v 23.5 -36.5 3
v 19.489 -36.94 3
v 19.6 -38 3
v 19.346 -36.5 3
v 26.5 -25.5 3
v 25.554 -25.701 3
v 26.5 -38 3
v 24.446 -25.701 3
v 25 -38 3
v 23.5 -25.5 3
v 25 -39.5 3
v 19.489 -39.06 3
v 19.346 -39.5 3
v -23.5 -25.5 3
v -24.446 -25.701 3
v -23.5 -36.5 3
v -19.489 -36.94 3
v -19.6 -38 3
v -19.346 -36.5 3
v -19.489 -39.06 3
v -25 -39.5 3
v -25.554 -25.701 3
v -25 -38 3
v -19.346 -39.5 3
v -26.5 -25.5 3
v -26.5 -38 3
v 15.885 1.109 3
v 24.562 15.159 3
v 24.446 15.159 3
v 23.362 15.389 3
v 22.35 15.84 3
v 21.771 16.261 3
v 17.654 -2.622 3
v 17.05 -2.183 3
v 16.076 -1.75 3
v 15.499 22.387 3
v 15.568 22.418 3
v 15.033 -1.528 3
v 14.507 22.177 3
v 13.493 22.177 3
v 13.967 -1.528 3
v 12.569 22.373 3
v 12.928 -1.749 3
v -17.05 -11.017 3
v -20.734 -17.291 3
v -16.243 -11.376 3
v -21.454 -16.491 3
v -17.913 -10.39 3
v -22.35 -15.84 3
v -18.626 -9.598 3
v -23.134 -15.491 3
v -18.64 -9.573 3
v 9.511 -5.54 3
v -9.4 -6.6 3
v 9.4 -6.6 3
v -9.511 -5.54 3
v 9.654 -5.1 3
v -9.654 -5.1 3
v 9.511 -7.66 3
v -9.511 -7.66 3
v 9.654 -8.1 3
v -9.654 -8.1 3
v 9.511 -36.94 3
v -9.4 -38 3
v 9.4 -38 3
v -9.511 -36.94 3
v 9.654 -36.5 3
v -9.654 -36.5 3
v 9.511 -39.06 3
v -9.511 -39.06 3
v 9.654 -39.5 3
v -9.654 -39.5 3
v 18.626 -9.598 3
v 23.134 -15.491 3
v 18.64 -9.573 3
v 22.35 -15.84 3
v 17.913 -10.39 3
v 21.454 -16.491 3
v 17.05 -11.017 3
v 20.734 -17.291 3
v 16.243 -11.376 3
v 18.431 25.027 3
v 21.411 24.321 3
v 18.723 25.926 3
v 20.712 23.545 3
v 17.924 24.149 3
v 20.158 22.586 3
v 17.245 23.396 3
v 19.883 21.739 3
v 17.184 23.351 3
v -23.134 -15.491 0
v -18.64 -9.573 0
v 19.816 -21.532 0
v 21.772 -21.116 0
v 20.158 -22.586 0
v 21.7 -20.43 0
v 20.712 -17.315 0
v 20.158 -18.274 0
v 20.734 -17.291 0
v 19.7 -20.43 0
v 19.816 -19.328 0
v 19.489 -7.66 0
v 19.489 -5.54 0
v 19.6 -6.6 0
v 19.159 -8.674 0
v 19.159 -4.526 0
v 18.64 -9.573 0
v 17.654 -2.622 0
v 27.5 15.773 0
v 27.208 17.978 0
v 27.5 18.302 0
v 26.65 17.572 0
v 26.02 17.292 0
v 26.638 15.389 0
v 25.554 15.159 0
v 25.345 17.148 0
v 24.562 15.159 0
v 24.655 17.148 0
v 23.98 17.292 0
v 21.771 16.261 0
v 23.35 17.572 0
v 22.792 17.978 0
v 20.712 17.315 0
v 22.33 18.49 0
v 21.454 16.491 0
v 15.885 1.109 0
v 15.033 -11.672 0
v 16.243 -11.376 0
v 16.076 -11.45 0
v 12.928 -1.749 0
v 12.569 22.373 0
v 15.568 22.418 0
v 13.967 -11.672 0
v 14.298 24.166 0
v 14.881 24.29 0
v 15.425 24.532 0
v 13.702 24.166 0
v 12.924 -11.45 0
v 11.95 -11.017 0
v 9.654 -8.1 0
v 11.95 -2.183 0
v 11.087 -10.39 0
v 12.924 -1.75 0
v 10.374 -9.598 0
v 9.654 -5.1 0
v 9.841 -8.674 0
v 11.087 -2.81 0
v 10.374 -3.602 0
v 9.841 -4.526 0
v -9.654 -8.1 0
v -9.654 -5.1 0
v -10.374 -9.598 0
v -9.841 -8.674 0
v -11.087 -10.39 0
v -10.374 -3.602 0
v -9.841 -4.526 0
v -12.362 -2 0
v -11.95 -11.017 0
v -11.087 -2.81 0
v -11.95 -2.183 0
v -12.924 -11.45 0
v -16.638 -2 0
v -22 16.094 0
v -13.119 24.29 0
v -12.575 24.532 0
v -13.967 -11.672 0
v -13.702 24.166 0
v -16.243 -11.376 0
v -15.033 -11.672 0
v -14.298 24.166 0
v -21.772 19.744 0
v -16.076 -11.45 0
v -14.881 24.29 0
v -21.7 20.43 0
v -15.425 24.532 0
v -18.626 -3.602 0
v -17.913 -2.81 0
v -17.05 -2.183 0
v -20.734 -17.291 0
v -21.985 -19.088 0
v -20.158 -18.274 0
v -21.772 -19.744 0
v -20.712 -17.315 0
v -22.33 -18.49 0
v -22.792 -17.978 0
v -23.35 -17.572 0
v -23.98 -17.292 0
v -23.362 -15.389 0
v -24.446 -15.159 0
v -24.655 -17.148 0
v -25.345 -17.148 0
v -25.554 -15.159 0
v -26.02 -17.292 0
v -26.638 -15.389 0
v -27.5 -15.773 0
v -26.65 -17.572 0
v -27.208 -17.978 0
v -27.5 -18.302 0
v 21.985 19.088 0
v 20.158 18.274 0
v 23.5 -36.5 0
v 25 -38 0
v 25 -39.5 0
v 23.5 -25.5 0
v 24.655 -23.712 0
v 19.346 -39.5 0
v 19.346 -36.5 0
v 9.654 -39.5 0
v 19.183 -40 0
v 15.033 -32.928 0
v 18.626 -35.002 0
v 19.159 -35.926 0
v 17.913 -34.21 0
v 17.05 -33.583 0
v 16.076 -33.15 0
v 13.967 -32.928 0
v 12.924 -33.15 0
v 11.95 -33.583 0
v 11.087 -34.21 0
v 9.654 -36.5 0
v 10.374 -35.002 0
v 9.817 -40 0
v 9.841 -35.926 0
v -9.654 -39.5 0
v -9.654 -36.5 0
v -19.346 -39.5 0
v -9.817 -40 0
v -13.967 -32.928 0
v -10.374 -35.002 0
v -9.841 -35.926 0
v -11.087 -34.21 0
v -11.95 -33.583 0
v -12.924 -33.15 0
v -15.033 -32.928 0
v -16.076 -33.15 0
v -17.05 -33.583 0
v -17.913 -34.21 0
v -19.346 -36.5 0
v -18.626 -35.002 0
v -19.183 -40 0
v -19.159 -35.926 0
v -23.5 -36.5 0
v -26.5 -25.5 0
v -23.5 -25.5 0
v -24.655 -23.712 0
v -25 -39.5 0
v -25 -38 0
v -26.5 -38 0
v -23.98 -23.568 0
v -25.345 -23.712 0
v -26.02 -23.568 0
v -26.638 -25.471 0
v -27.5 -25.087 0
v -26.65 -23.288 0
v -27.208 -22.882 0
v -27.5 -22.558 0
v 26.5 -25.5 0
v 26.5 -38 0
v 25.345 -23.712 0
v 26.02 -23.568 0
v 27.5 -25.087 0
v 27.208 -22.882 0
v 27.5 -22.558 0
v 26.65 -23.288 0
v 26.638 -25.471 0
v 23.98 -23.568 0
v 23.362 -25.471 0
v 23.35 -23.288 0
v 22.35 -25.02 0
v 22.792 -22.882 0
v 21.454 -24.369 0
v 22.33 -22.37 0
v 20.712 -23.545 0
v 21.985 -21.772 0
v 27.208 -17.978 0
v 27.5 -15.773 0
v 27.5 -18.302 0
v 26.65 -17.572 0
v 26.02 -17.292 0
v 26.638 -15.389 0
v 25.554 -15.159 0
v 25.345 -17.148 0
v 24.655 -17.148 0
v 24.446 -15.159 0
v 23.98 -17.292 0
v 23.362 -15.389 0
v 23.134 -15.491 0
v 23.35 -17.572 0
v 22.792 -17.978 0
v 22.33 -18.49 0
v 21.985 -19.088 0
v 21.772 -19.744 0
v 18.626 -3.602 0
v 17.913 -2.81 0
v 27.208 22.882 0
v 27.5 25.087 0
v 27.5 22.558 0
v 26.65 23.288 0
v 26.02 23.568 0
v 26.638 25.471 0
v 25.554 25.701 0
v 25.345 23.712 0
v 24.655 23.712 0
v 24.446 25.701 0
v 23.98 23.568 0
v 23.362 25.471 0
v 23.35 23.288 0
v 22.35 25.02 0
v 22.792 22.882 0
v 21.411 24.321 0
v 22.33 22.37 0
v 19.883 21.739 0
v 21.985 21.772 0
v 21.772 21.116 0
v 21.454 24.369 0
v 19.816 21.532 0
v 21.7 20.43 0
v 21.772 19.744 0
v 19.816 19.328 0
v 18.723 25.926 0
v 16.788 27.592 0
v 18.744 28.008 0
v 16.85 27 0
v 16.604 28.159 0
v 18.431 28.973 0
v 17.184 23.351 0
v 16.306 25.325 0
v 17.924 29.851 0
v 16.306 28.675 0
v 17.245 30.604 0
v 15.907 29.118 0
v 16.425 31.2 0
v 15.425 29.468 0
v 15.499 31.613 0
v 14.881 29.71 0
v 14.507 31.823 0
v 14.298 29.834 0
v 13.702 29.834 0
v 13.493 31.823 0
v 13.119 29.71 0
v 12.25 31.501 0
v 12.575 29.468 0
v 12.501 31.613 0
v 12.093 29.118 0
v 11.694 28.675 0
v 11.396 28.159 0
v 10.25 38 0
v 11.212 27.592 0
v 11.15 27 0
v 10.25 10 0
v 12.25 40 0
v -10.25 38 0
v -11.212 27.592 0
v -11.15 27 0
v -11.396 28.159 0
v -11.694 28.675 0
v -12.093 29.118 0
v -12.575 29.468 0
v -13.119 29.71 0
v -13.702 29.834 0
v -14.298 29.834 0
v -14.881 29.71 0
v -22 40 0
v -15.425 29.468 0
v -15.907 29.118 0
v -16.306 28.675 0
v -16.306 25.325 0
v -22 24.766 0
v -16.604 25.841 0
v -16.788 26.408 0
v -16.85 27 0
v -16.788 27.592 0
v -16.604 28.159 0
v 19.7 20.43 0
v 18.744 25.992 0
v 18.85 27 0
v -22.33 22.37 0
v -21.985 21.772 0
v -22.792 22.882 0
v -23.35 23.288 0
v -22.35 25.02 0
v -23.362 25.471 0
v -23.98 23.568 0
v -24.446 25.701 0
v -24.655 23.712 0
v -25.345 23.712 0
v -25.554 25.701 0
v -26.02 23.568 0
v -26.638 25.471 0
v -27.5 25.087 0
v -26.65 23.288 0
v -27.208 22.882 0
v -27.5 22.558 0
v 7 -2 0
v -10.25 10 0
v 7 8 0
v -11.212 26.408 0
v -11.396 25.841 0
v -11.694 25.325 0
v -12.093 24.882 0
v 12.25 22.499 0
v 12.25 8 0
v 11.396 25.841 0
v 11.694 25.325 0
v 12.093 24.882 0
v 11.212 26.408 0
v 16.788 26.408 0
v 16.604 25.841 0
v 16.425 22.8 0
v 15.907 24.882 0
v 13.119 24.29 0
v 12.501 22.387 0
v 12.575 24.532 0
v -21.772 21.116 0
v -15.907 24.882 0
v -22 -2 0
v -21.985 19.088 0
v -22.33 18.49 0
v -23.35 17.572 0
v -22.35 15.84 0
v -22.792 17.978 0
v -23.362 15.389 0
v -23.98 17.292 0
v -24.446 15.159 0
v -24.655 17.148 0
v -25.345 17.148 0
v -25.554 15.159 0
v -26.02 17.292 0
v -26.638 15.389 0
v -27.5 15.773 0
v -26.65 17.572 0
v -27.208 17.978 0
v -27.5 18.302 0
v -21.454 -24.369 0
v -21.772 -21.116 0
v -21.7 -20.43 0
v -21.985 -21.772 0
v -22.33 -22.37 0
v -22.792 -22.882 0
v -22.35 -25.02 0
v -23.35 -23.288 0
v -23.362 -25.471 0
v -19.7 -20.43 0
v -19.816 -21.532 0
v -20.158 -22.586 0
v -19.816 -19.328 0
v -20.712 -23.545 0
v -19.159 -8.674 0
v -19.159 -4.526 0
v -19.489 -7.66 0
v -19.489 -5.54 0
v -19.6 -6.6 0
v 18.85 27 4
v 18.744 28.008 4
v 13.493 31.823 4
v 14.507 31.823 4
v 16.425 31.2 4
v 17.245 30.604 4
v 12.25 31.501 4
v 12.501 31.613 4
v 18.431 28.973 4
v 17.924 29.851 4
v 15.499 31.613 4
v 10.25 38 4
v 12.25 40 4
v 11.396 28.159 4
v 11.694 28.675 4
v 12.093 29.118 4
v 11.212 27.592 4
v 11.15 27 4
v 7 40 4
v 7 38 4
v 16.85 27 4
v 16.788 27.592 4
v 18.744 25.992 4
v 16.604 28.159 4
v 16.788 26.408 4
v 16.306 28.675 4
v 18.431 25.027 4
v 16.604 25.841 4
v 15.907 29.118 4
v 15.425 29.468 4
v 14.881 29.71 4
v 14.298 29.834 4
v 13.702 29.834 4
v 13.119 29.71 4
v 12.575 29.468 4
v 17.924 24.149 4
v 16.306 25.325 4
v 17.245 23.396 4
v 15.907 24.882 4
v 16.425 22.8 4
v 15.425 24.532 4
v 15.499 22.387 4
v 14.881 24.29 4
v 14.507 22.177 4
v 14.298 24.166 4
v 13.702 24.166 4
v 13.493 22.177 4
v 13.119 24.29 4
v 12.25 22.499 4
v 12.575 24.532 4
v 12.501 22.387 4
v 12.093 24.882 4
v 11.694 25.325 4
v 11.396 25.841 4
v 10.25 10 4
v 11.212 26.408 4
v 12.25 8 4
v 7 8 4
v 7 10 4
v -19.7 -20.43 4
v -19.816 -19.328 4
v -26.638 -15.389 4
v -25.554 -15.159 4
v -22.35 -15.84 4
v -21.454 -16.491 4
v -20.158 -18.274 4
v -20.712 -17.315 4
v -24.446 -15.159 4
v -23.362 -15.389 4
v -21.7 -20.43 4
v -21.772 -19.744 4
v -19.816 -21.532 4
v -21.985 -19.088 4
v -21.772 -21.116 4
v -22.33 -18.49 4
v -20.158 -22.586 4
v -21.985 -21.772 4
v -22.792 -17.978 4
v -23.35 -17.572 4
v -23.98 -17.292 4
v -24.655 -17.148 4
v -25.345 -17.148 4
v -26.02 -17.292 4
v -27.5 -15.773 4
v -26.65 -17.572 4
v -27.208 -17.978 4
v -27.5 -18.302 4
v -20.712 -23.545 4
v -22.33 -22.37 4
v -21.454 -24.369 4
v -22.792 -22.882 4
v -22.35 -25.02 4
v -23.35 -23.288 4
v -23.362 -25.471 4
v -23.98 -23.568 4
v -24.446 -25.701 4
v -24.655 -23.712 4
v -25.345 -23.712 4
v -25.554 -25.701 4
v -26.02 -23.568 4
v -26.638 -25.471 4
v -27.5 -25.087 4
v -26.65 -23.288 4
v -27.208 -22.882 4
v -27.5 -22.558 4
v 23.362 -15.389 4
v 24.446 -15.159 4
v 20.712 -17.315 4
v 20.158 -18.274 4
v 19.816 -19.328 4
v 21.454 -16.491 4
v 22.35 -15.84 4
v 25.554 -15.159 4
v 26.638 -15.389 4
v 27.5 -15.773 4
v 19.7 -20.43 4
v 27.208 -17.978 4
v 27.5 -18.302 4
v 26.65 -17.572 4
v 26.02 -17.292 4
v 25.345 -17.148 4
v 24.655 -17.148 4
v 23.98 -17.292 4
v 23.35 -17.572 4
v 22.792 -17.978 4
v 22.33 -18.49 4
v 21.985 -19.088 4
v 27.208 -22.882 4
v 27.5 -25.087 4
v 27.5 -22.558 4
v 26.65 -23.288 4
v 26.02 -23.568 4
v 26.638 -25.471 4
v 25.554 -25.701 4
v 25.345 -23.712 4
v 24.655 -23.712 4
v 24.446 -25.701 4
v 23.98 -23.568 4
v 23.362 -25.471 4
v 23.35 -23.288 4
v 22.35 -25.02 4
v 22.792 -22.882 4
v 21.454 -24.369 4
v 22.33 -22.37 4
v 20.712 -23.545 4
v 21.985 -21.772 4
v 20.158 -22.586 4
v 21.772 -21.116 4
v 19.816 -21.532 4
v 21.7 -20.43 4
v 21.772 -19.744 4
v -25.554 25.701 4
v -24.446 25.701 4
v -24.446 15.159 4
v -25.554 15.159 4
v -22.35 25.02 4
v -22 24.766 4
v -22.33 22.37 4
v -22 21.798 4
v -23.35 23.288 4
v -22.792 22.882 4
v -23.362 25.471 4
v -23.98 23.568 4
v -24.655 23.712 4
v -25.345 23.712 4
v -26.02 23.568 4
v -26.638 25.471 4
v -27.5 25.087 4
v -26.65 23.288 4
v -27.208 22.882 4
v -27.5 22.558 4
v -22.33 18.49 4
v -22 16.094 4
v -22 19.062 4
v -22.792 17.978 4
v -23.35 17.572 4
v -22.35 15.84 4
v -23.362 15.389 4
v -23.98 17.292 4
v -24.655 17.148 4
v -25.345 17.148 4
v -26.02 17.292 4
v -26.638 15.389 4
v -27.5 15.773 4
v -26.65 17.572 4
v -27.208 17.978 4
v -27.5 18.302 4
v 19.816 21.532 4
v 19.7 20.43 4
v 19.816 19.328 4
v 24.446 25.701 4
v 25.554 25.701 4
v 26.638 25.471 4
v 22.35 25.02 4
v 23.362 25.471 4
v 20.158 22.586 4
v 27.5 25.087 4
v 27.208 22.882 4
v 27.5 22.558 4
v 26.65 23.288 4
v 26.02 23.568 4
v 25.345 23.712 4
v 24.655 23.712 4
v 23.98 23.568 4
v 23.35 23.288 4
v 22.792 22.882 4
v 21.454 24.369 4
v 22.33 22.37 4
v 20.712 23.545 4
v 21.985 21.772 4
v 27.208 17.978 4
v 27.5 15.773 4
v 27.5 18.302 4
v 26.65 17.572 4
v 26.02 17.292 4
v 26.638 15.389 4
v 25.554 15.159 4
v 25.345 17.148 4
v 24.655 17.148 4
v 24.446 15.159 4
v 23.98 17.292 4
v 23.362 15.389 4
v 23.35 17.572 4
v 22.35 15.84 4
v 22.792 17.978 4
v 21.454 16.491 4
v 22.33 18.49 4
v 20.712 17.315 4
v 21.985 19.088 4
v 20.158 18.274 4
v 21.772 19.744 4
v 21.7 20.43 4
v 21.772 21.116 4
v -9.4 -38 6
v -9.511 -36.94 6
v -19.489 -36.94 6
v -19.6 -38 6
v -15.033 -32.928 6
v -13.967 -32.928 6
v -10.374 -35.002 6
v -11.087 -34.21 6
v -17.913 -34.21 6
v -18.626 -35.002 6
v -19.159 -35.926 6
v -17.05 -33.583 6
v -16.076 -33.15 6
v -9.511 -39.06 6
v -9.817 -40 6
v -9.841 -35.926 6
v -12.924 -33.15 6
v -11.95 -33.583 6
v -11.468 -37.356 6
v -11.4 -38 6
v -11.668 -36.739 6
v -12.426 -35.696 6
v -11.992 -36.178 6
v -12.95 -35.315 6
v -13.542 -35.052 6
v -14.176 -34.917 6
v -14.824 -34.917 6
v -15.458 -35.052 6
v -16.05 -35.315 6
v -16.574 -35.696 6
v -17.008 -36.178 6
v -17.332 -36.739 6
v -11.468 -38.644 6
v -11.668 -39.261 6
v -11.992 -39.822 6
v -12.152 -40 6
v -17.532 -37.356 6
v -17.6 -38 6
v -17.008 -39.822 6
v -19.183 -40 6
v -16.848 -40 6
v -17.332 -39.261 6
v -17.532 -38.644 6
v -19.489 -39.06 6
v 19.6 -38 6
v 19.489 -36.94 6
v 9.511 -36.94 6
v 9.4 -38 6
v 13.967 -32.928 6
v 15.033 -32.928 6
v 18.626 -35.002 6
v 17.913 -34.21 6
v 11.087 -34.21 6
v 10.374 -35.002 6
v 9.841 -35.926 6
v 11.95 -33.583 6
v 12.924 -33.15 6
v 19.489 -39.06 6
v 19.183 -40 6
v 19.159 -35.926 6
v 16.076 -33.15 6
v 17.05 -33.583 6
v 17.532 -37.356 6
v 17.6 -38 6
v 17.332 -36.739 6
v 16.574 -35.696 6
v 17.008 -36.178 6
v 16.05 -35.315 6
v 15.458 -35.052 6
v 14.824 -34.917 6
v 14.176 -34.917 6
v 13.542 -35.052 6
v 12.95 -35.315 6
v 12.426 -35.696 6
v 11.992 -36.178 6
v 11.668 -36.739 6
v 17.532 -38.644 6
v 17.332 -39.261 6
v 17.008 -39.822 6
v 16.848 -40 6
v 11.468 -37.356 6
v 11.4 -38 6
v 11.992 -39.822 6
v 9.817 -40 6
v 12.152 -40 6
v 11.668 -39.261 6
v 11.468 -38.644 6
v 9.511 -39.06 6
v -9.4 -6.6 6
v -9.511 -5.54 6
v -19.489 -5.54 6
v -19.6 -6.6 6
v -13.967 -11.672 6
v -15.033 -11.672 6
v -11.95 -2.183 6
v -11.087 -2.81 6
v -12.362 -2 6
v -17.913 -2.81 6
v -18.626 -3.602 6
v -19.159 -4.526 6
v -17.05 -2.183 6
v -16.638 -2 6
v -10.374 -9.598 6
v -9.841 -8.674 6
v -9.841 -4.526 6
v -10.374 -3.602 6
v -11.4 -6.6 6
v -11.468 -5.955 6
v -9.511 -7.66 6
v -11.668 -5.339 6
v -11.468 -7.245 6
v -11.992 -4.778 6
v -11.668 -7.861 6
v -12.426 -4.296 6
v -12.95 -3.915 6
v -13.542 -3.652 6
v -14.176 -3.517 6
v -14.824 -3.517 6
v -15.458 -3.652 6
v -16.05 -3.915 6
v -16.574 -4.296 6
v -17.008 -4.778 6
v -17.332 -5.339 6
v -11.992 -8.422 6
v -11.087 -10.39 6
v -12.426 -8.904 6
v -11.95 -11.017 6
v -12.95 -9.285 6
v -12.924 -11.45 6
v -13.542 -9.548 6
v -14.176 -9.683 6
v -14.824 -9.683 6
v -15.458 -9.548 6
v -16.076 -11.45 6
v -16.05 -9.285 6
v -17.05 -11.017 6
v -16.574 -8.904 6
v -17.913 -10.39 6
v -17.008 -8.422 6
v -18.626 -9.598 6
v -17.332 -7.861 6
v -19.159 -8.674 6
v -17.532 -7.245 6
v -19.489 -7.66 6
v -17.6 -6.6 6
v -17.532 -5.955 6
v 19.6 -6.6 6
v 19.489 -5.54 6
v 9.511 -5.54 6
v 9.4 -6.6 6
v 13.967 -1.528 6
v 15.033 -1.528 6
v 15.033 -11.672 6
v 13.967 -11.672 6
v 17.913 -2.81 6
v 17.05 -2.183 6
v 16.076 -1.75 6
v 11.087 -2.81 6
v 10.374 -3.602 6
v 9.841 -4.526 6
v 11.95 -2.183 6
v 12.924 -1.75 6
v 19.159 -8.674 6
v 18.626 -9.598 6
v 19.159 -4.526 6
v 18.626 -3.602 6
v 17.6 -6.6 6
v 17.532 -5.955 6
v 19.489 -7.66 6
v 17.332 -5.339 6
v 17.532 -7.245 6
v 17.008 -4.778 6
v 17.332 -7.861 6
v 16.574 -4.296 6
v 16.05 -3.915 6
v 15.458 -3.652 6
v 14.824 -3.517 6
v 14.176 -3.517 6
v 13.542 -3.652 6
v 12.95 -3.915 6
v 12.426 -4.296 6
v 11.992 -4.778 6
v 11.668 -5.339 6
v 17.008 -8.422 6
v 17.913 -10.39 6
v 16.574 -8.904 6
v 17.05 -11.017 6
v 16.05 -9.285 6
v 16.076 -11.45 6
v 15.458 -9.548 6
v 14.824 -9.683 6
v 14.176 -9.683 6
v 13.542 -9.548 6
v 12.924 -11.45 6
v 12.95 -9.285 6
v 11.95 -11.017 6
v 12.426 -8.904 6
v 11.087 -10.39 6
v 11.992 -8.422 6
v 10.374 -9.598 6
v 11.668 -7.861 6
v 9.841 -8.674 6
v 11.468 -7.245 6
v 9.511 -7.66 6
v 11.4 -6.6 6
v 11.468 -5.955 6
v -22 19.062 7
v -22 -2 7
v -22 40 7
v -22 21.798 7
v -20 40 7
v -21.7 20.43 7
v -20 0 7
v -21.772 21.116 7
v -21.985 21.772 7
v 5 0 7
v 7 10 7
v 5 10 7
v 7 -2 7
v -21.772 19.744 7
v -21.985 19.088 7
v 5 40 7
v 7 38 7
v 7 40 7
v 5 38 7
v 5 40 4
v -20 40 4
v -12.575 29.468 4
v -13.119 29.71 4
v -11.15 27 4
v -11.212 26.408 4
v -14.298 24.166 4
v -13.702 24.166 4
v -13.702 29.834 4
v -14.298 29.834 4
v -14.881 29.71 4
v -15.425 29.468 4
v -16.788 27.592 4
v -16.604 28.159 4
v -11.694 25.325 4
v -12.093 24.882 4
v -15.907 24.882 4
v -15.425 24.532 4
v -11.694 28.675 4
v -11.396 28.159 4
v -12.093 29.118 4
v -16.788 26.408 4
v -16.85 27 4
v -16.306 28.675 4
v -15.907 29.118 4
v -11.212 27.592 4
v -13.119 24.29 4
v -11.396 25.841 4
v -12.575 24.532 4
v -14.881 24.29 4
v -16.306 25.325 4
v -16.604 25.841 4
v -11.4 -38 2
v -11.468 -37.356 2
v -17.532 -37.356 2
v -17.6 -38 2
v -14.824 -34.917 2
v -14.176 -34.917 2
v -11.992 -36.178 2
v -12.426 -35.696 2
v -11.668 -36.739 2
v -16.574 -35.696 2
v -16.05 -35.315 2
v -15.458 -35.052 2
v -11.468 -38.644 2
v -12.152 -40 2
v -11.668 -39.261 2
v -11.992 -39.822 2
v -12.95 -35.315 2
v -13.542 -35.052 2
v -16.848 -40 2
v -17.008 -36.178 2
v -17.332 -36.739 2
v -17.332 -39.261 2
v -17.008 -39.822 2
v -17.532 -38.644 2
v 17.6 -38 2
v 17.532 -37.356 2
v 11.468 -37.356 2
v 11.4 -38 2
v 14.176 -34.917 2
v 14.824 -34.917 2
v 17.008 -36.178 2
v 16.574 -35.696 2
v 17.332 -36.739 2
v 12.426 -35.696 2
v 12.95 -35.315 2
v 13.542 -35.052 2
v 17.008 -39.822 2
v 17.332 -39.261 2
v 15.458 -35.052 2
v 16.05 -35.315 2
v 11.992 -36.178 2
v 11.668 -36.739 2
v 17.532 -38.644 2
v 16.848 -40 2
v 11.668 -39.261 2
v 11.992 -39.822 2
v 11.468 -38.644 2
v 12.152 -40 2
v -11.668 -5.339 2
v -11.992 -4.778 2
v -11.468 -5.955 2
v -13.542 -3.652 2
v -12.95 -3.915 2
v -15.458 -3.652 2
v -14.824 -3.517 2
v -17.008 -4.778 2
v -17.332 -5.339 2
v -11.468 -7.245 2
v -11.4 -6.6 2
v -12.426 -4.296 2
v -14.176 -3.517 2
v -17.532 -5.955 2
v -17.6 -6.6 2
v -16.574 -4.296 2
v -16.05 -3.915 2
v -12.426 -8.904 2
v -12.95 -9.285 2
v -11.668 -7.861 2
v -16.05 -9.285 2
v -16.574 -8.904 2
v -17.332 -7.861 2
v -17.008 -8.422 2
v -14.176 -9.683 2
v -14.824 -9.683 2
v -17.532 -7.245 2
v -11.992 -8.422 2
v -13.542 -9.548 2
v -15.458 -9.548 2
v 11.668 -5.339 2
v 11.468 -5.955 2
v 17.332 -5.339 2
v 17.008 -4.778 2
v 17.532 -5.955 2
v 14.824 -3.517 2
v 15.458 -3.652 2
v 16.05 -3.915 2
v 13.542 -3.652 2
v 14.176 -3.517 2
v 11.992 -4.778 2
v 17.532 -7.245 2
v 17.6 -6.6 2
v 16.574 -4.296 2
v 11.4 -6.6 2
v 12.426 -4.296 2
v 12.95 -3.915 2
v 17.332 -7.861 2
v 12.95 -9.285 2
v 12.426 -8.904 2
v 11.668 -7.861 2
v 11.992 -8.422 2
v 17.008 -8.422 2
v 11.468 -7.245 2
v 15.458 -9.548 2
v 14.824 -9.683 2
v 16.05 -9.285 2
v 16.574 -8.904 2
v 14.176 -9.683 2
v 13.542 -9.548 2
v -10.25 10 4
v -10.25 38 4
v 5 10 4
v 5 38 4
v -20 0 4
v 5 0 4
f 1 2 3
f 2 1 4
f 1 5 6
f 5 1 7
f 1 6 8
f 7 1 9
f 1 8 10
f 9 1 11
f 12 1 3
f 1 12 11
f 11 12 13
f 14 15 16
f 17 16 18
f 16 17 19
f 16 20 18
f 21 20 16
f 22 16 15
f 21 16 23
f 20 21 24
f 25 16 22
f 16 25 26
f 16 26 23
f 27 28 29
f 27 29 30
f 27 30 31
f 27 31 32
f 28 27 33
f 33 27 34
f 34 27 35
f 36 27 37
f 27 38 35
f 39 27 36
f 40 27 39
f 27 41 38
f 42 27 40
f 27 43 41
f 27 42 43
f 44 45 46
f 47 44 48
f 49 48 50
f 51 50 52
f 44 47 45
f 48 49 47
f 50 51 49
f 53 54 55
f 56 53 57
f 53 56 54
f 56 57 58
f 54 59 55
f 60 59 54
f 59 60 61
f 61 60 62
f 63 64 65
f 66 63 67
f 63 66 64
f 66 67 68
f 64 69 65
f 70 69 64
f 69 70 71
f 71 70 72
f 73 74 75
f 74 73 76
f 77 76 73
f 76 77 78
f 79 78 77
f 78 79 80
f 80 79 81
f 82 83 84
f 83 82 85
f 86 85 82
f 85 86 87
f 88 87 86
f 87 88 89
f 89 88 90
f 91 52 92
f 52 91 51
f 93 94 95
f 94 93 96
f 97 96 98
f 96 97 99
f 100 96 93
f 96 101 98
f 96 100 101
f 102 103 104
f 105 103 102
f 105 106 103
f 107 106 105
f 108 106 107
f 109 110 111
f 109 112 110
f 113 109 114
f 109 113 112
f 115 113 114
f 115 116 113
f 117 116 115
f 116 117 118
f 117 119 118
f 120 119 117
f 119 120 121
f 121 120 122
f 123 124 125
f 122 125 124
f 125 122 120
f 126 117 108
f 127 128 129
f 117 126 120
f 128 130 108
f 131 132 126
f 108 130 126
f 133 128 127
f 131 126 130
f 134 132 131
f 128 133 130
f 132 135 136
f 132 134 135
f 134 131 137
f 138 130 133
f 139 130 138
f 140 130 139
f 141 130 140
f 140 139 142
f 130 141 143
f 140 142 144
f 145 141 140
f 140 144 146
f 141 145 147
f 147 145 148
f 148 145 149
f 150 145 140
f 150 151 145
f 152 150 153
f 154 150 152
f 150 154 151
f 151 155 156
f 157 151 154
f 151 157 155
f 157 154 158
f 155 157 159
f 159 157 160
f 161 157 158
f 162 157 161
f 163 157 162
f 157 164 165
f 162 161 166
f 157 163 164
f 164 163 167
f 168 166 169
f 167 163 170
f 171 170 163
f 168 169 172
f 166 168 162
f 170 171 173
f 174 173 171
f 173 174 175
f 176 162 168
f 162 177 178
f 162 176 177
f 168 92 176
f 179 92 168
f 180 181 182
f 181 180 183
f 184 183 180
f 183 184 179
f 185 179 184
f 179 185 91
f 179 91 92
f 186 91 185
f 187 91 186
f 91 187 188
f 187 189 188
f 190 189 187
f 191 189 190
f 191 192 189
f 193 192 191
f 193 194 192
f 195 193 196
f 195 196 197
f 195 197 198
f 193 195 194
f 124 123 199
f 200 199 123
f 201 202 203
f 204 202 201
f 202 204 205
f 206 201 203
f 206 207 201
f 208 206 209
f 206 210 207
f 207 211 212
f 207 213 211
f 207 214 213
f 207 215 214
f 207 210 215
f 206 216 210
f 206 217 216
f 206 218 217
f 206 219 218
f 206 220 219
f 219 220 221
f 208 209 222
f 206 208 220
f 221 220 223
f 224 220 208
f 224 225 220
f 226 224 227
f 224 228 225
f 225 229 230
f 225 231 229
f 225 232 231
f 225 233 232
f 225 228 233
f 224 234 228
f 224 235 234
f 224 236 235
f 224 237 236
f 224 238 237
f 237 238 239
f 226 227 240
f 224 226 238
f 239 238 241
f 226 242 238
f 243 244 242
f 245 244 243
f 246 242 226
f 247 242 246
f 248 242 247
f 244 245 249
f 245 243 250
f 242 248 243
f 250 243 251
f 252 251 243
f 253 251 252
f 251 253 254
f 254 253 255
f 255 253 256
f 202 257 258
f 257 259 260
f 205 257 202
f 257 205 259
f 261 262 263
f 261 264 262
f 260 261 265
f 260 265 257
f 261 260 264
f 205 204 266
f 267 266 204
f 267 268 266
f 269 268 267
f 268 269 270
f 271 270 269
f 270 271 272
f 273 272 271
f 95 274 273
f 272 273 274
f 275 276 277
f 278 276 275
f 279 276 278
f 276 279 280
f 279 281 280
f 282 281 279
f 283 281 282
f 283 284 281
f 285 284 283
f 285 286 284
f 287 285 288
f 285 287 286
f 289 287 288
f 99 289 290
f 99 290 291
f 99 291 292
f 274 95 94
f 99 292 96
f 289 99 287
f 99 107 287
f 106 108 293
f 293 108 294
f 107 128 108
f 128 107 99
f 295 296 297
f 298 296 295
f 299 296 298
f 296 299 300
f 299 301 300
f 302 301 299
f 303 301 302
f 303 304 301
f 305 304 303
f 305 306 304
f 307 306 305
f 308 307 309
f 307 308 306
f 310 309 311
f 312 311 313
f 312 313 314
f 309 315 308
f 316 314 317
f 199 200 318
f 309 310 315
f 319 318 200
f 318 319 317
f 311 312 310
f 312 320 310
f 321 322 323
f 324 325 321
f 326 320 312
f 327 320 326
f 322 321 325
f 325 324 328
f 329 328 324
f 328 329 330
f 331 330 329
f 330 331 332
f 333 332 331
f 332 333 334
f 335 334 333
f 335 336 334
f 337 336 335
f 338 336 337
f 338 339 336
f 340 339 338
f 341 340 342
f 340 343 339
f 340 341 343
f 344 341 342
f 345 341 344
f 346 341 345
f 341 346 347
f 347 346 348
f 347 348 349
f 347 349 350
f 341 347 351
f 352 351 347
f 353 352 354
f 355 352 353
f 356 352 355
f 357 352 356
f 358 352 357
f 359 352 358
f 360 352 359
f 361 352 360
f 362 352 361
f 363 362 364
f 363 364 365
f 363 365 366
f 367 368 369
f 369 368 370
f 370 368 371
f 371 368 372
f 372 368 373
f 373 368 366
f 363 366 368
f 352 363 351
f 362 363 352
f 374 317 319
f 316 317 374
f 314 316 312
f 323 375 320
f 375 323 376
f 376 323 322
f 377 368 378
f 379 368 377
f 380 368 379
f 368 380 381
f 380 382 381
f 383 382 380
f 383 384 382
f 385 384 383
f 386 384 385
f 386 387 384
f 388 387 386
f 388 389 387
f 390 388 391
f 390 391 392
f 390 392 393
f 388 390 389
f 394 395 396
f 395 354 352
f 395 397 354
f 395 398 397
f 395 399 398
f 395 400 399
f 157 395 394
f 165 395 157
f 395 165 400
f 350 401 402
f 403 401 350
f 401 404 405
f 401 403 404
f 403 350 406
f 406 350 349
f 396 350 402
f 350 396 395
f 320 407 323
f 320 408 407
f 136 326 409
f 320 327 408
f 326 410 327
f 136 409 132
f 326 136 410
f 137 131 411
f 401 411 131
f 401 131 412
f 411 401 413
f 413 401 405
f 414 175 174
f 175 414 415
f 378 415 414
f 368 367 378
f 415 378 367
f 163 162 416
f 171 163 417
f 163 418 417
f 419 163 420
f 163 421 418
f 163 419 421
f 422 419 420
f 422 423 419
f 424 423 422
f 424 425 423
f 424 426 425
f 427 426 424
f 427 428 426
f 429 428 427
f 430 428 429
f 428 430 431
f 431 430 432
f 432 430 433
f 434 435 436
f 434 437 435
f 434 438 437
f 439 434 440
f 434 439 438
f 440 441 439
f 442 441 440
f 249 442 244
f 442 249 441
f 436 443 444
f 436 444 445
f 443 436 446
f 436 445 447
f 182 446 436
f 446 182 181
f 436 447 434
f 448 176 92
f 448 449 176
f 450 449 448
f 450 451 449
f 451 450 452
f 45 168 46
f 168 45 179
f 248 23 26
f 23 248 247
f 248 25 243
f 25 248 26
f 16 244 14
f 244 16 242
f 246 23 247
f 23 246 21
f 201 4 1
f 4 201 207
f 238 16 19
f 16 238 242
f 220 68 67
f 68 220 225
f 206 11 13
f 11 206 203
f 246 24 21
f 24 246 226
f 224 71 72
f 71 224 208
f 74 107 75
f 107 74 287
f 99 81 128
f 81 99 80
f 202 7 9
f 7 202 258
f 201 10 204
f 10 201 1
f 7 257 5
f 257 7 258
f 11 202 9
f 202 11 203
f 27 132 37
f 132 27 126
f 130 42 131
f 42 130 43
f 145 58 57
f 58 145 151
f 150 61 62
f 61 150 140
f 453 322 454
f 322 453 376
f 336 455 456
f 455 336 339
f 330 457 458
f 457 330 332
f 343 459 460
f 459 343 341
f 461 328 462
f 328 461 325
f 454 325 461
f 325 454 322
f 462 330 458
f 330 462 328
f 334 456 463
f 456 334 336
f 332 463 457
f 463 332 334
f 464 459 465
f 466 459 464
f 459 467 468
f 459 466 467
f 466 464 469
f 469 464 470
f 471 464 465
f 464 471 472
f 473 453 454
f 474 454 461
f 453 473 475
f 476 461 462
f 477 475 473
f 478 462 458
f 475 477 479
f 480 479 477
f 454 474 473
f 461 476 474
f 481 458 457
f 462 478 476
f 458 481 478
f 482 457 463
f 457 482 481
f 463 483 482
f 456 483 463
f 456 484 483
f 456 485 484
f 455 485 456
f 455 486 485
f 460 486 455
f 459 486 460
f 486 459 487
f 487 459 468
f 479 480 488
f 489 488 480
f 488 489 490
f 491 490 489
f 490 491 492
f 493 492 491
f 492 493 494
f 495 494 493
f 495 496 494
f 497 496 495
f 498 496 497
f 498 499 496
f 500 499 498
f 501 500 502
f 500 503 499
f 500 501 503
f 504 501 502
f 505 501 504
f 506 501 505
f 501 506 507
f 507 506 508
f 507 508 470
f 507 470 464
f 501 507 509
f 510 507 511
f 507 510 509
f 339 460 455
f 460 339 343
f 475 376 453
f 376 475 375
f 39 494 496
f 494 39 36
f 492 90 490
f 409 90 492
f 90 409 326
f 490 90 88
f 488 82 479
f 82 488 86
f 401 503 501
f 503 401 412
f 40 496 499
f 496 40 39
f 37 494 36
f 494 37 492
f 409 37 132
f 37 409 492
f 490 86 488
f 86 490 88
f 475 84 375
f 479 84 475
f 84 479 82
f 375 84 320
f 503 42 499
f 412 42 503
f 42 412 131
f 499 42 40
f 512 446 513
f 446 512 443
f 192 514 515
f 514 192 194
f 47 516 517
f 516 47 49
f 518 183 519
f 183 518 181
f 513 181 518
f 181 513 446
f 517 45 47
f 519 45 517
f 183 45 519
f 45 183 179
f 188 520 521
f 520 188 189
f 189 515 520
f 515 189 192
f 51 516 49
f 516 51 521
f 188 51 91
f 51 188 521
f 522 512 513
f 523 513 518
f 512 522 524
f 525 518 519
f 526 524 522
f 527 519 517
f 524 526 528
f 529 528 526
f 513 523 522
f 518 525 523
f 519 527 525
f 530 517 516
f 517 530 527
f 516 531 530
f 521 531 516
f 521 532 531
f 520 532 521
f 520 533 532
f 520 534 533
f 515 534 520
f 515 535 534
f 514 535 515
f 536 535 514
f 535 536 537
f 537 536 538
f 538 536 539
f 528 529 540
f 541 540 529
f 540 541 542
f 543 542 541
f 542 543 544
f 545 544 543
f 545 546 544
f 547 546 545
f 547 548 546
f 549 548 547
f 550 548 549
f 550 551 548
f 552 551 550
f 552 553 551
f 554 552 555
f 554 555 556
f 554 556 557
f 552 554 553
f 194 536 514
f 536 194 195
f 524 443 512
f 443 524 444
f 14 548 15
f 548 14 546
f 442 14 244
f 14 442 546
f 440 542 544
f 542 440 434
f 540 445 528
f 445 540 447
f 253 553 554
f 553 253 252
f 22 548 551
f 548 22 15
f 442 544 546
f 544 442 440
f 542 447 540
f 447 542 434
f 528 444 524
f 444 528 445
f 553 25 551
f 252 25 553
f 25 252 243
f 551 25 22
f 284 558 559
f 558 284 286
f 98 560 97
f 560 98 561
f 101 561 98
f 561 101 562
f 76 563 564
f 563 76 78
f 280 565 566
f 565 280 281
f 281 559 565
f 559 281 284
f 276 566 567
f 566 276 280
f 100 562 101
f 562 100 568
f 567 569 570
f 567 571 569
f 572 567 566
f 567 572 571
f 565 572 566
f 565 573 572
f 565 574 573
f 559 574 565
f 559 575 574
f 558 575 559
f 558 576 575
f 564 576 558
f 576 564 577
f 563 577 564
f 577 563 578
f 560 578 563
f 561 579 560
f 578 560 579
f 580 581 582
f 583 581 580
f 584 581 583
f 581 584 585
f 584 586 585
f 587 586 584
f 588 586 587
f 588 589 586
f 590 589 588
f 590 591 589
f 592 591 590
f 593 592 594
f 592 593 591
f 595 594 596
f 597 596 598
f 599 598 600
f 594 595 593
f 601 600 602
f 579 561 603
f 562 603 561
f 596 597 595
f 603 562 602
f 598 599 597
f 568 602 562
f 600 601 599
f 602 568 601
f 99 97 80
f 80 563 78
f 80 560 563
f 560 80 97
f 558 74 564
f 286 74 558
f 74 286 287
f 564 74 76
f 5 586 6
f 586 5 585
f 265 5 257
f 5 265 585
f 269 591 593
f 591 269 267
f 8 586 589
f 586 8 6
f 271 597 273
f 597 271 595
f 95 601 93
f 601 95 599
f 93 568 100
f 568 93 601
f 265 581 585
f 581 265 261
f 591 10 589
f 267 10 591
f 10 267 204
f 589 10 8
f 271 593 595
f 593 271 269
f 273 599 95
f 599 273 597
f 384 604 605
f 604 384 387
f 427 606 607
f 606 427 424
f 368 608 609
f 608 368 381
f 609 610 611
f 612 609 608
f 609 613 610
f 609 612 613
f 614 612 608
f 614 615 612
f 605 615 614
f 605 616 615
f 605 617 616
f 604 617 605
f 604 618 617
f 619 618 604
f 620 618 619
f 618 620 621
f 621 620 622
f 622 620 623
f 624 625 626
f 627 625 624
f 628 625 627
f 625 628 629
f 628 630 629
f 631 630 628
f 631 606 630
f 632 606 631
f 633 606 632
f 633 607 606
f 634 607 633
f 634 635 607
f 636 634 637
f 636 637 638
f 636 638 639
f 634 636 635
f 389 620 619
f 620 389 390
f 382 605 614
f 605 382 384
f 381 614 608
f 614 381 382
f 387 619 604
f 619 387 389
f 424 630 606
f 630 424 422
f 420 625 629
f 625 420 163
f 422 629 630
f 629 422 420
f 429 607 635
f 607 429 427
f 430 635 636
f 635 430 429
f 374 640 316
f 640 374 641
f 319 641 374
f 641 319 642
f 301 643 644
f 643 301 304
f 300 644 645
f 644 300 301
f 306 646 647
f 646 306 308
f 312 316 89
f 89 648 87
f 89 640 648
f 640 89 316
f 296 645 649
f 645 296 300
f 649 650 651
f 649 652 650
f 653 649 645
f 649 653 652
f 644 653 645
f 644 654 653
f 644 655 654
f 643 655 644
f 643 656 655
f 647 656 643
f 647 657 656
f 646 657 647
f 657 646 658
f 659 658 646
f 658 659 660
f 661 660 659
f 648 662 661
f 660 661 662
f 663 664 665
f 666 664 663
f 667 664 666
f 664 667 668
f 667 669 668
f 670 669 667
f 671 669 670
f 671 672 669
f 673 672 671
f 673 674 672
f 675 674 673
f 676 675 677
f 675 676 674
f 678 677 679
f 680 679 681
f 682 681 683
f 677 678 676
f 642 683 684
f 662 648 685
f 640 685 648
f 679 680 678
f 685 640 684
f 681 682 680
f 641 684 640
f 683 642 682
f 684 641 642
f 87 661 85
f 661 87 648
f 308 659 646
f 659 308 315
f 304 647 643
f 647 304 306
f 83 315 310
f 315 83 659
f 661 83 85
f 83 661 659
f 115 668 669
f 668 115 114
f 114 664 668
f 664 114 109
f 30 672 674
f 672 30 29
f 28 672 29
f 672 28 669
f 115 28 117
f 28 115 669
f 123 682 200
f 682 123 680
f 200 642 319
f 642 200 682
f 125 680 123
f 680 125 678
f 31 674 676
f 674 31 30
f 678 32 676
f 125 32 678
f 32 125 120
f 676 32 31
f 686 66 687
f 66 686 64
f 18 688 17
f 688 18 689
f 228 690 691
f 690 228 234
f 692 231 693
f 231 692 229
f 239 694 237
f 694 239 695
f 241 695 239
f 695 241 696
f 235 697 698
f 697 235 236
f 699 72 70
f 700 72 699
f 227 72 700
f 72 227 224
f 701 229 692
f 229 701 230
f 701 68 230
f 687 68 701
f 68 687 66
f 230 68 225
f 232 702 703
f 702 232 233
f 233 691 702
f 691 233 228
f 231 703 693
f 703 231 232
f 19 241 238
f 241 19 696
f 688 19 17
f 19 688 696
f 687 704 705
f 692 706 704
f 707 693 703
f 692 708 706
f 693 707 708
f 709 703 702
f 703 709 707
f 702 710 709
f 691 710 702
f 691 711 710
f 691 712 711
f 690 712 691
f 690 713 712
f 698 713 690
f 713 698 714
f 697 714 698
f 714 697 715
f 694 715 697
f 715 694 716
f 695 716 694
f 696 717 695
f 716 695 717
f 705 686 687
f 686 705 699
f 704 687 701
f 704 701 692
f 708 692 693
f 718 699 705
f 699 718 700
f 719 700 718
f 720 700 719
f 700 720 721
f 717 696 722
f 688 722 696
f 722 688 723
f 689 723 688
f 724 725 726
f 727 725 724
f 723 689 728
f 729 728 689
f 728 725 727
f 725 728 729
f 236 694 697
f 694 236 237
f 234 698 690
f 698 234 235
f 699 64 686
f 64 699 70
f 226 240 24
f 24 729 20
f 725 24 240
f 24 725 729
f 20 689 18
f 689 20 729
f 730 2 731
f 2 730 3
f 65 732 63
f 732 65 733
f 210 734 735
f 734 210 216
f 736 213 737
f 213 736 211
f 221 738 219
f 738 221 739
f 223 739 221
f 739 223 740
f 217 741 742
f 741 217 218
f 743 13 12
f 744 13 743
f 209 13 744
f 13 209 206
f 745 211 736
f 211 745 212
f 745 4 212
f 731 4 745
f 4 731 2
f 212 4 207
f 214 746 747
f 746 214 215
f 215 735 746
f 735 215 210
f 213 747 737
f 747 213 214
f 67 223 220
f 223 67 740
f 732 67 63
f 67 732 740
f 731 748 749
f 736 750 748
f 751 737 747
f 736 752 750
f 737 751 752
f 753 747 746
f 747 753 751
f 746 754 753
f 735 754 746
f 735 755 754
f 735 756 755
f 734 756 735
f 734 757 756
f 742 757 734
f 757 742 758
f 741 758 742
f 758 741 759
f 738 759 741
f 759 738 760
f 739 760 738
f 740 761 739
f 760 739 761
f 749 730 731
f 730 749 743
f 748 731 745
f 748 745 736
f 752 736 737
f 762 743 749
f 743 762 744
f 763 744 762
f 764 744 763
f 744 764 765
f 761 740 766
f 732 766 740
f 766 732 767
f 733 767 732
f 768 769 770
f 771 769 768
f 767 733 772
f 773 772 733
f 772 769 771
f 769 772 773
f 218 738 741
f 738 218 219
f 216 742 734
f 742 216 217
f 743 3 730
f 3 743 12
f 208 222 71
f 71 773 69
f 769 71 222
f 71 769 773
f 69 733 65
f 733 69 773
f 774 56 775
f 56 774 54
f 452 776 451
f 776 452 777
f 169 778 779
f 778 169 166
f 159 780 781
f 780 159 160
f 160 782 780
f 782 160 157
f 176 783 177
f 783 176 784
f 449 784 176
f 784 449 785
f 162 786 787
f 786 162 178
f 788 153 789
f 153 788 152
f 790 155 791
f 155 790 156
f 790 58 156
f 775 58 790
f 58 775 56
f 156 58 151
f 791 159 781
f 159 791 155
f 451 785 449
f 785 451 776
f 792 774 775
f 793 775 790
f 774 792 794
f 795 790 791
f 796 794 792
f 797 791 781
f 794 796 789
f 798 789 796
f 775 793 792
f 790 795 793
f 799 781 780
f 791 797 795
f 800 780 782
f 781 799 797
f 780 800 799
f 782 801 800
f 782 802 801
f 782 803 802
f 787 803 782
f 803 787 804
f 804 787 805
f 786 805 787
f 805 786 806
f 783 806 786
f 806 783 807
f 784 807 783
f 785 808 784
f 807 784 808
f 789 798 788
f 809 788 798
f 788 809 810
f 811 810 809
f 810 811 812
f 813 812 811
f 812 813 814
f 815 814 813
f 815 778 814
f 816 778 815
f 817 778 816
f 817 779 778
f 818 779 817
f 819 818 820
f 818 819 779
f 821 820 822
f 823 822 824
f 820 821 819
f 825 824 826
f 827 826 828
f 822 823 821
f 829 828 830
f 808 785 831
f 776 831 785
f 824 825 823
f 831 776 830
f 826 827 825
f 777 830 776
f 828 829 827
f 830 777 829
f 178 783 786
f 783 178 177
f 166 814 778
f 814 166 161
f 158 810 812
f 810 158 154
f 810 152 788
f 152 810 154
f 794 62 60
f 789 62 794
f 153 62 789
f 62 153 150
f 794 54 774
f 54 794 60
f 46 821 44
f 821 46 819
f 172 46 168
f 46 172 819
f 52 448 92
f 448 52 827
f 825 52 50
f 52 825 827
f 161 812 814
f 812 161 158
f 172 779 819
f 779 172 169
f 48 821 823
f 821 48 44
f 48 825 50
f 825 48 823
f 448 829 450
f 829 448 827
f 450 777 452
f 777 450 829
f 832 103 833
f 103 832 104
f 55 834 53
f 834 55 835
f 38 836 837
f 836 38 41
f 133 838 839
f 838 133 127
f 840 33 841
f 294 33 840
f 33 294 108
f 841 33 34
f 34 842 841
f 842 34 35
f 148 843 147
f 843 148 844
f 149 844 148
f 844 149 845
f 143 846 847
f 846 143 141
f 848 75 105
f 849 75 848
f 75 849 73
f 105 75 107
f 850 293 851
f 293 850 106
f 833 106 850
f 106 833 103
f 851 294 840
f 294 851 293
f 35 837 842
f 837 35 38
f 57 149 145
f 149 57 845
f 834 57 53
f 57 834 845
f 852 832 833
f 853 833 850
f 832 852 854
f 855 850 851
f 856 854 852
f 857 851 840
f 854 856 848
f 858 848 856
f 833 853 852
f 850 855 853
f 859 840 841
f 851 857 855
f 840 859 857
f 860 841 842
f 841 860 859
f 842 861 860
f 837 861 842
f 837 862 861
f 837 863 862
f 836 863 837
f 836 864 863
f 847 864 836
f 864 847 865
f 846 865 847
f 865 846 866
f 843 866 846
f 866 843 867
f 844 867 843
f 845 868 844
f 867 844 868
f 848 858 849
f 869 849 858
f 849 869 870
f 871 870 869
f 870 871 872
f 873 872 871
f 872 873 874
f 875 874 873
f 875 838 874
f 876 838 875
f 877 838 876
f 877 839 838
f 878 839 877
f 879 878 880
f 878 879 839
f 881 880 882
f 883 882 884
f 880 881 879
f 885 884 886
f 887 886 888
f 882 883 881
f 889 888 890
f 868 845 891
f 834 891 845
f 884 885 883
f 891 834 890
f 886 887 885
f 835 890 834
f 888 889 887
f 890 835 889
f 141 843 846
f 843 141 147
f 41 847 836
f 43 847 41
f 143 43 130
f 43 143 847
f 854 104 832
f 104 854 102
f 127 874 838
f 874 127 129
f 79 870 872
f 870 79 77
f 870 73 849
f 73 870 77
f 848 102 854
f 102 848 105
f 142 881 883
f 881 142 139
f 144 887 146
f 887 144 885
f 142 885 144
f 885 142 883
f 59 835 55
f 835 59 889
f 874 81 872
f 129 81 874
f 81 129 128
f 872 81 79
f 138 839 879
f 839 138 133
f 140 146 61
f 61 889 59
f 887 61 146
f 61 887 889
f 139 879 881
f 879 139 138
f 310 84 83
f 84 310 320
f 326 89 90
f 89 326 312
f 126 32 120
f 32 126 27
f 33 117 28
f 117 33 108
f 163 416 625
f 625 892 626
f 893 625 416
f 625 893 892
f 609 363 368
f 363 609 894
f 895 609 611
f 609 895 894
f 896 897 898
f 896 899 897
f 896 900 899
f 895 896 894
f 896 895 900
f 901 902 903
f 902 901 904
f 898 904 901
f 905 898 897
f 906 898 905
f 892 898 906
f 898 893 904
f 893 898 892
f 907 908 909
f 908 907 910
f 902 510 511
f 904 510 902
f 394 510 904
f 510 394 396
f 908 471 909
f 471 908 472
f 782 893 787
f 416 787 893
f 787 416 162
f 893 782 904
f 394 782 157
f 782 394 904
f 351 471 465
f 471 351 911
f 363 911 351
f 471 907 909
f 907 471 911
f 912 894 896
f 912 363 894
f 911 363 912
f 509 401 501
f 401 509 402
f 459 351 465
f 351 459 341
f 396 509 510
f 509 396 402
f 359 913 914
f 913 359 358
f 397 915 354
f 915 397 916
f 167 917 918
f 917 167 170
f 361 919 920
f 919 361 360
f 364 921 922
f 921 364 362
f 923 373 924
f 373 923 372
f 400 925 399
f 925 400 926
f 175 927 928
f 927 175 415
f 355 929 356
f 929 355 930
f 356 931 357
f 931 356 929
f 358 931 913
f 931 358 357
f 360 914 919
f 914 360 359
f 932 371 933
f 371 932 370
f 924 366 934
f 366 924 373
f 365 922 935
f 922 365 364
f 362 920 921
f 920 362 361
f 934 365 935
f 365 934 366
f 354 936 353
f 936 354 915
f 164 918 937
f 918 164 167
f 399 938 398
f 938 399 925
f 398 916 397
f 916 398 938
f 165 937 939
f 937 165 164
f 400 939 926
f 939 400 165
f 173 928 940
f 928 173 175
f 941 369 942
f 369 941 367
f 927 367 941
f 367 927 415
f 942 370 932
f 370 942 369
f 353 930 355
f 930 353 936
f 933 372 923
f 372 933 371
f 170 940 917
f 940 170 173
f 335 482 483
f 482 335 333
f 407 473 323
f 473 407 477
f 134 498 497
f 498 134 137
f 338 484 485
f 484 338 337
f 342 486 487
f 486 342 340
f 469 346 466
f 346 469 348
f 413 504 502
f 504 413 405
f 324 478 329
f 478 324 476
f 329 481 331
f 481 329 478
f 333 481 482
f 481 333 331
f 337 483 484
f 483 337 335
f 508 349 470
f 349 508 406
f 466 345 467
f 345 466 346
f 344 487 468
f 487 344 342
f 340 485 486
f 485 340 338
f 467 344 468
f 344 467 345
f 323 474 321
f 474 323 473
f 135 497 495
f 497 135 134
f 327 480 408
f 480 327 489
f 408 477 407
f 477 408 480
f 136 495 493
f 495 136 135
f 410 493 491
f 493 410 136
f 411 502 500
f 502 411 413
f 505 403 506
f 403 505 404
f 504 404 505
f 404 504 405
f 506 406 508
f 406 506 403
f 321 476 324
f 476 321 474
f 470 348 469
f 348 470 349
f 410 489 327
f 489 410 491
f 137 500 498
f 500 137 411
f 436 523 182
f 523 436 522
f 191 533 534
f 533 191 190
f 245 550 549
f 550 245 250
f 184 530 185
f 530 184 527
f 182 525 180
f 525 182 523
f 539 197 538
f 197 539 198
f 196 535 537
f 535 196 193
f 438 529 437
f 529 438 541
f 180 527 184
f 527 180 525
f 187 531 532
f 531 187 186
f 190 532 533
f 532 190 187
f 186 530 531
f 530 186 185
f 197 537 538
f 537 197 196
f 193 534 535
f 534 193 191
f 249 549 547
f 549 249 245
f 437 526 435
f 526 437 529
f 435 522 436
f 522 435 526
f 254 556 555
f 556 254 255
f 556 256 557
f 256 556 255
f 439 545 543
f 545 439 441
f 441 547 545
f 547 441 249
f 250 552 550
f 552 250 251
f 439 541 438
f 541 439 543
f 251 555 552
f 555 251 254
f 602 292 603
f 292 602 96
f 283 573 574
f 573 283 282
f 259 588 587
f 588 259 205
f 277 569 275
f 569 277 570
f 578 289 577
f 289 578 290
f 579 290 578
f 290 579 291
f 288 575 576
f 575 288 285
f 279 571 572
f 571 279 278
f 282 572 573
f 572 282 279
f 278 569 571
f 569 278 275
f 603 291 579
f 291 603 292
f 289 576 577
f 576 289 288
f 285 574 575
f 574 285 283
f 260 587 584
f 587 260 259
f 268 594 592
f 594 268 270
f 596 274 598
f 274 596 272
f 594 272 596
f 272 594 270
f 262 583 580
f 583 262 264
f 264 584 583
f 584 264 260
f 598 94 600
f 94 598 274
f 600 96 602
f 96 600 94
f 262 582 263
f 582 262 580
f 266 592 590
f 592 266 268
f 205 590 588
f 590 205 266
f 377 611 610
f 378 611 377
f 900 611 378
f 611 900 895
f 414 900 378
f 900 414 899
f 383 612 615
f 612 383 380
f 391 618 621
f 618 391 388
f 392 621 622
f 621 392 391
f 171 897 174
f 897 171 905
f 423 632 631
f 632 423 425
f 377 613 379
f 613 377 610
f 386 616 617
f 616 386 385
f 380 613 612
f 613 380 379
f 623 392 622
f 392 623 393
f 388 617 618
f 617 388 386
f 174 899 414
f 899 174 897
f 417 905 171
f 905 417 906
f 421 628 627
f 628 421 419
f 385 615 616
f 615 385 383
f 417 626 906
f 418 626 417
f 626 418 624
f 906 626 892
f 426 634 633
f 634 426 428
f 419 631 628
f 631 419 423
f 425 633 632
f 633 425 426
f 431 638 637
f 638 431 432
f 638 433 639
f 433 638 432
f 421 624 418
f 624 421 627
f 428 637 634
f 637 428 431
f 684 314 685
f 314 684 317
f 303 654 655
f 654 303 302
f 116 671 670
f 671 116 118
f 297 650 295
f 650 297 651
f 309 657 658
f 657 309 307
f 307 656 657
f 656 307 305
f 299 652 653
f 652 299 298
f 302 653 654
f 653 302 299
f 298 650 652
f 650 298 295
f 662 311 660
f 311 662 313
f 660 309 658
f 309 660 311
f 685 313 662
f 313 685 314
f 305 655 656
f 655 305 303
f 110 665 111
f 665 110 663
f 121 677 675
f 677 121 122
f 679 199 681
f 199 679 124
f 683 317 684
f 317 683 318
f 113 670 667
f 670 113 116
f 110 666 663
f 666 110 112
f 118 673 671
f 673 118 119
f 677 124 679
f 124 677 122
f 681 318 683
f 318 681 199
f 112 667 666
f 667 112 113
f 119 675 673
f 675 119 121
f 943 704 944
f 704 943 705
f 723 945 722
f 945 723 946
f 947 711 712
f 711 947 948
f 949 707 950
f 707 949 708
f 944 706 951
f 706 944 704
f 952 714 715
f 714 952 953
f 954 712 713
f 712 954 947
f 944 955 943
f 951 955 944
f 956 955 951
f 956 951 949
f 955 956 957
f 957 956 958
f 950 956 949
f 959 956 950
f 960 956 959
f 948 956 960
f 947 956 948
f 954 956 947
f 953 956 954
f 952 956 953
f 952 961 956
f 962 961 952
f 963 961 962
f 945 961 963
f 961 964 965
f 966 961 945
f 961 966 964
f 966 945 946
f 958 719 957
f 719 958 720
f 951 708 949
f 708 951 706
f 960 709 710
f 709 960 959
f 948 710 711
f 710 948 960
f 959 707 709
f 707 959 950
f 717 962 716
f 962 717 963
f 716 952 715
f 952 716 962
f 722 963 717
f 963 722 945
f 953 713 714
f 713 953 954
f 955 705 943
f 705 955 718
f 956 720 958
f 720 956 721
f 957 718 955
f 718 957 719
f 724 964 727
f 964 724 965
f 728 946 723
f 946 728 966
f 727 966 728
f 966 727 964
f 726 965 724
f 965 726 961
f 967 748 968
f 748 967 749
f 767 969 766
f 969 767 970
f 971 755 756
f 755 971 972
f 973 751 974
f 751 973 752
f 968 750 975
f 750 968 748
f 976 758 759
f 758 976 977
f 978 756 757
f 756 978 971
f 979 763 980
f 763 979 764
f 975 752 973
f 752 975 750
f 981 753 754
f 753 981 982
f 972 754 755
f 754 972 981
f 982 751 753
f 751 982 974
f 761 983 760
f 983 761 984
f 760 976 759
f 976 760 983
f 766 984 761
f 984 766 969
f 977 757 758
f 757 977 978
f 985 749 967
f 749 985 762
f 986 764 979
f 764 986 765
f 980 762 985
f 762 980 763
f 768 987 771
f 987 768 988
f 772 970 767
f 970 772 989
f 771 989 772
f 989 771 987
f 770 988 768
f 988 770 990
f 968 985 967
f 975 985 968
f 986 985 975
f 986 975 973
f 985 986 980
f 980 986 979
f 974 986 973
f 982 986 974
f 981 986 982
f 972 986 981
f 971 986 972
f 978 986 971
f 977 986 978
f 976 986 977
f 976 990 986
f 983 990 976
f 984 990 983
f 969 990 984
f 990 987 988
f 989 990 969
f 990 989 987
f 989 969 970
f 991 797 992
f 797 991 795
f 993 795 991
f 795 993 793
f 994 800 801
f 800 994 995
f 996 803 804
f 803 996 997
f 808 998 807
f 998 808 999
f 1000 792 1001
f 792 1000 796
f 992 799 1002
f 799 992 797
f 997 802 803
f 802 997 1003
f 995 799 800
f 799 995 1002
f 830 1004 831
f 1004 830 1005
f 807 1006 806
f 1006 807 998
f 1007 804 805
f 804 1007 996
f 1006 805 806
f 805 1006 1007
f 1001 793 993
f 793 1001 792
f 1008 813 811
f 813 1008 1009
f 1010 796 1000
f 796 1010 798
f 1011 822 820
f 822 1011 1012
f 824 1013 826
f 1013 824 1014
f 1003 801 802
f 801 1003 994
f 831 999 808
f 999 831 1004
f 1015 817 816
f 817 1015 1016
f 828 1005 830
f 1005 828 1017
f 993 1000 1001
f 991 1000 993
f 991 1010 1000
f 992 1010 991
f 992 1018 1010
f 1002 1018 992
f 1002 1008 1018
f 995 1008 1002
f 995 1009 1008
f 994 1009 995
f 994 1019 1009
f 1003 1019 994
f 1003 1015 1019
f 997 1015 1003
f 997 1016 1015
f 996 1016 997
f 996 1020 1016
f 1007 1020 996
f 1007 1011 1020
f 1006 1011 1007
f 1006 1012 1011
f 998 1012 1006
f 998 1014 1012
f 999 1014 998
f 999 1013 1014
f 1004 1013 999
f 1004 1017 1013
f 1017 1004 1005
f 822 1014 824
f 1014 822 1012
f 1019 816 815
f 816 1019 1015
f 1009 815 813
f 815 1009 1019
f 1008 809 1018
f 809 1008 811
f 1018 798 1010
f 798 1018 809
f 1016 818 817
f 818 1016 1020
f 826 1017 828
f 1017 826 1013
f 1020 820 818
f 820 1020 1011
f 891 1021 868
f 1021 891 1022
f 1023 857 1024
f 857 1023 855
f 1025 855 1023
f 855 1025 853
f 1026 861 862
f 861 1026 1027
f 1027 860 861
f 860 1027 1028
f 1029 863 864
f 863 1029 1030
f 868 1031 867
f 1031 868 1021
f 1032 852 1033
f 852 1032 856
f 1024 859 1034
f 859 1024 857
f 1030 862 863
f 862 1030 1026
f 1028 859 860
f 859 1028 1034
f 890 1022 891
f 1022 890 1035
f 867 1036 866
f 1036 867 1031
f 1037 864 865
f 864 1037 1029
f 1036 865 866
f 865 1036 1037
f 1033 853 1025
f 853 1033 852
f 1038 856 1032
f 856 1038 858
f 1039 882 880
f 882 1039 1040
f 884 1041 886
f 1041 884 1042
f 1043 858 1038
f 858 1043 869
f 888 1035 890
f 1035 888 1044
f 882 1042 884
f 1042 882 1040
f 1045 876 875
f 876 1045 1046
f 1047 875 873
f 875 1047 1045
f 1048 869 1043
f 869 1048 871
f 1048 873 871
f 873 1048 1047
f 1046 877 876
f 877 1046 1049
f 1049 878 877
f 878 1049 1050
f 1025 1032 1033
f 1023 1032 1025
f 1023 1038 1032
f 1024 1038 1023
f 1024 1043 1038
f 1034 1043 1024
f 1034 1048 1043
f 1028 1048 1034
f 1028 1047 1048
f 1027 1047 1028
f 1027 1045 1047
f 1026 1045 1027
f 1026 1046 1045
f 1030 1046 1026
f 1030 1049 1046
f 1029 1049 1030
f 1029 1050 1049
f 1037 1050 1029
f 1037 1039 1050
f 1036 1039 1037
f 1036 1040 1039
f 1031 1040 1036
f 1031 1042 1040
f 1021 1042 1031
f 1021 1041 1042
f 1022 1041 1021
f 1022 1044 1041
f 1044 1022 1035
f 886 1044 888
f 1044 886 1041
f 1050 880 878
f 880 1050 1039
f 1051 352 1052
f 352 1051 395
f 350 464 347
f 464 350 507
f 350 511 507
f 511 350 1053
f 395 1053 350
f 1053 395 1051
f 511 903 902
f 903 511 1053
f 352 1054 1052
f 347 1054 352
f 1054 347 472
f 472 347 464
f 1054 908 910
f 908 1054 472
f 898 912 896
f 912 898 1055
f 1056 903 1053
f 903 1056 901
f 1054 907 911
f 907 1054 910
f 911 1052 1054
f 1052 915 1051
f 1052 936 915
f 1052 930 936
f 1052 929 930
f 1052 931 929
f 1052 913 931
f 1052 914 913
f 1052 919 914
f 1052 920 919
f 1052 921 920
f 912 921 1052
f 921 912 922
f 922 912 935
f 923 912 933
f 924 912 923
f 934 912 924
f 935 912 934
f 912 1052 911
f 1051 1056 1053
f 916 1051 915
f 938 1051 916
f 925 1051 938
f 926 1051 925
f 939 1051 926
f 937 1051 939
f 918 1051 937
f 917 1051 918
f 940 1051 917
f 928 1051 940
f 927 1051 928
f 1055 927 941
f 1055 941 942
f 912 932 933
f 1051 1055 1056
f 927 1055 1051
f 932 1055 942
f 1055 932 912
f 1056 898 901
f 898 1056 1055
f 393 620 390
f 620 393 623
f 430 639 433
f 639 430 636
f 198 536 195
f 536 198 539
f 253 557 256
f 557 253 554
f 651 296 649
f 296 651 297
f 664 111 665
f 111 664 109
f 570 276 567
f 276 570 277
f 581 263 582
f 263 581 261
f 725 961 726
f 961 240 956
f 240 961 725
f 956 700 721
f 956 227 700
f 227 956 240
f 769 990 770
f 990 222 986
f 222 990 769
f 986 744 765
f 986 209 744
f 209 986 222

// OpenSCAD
module rod(a, b, width) {
    delta = b-a;
    length =norm(delta);
    translate(a) rotate([0,0,atan2(delta[1],delta[0])])
        translate([0,-width/2,0]) cube([length,width,width]);
}

$fn=30;

mount_holes = [[-14, 27, 0],
               [14, 27, 0]];

support_struts = [[-25, -20.43, 0],
                  [25, -20.43, 0],
                  [-25, 20.43, 0],
                  [25, 20.43, 0]];

screw_dents = [[-14.5,-38],
               [14.5,-38],
               [-14.5,-6.6],
               [14.5,-6.6]];

corners = [[-25,-38],
           [25,-38]];

module beta(width, height) {
    difference() {
        union() {
            for(i=[0,1]) {
                rod(support_struts[i], screw_dents[i+2],width);
                rod(support_struts[i], corners[i],width);
                rod(corners[i], screw_dents[i], width);
                rod(screw_dents[i+2],mount_holes[i],width);
            }
            rod(support_struts[3], mount_holes[1],width);
            rod(support_struts[3], screw_dents[3], width);
            for(i = [0,2]) {
                for(j = [mount_holes, screw_dents]) {
                    rod(j[i],j[i+1],width);
                }
            }
            for(i=mount_holes) {
                translate(i) cylinder(d=5.7+4,h=height);
            }
            for(i=support_struts) {
                translate(i) cylinder(d=6.6+4,h=height);
            }
            for(i=screw_dents) {
                translate(i) cylinder(d=6.2+4,h=6);
            }
            //laser holder
            translate([-22,-2,0]) cube([29,42,height+3]);
            
            //battery holder
            translate([-12.25,8,0]) cube([24.5,32,height]);
        }
        for(i=mount_holes) {
            translate(i) cylinder(d=5.7,h=height*3, center=true);
        }
        for(i=support_struts) {
            translate(i) cylinder(d=6.6,h=height*8, center=true);
        }
        for(i=screw_dents) {
            translate([0,0,2]) translate(i) cylinder(d=6.2,h=height+8);
        }

        //battery pack
        translate([-10.25,10,-5]) cube([20.5,28,30]);
        translate([-20,0,height]) cube([25,45,14]);
    }
}
       
//alpha();
intersection() {
    cube([55,80,100],center=true);
    beta(3,4);
}
